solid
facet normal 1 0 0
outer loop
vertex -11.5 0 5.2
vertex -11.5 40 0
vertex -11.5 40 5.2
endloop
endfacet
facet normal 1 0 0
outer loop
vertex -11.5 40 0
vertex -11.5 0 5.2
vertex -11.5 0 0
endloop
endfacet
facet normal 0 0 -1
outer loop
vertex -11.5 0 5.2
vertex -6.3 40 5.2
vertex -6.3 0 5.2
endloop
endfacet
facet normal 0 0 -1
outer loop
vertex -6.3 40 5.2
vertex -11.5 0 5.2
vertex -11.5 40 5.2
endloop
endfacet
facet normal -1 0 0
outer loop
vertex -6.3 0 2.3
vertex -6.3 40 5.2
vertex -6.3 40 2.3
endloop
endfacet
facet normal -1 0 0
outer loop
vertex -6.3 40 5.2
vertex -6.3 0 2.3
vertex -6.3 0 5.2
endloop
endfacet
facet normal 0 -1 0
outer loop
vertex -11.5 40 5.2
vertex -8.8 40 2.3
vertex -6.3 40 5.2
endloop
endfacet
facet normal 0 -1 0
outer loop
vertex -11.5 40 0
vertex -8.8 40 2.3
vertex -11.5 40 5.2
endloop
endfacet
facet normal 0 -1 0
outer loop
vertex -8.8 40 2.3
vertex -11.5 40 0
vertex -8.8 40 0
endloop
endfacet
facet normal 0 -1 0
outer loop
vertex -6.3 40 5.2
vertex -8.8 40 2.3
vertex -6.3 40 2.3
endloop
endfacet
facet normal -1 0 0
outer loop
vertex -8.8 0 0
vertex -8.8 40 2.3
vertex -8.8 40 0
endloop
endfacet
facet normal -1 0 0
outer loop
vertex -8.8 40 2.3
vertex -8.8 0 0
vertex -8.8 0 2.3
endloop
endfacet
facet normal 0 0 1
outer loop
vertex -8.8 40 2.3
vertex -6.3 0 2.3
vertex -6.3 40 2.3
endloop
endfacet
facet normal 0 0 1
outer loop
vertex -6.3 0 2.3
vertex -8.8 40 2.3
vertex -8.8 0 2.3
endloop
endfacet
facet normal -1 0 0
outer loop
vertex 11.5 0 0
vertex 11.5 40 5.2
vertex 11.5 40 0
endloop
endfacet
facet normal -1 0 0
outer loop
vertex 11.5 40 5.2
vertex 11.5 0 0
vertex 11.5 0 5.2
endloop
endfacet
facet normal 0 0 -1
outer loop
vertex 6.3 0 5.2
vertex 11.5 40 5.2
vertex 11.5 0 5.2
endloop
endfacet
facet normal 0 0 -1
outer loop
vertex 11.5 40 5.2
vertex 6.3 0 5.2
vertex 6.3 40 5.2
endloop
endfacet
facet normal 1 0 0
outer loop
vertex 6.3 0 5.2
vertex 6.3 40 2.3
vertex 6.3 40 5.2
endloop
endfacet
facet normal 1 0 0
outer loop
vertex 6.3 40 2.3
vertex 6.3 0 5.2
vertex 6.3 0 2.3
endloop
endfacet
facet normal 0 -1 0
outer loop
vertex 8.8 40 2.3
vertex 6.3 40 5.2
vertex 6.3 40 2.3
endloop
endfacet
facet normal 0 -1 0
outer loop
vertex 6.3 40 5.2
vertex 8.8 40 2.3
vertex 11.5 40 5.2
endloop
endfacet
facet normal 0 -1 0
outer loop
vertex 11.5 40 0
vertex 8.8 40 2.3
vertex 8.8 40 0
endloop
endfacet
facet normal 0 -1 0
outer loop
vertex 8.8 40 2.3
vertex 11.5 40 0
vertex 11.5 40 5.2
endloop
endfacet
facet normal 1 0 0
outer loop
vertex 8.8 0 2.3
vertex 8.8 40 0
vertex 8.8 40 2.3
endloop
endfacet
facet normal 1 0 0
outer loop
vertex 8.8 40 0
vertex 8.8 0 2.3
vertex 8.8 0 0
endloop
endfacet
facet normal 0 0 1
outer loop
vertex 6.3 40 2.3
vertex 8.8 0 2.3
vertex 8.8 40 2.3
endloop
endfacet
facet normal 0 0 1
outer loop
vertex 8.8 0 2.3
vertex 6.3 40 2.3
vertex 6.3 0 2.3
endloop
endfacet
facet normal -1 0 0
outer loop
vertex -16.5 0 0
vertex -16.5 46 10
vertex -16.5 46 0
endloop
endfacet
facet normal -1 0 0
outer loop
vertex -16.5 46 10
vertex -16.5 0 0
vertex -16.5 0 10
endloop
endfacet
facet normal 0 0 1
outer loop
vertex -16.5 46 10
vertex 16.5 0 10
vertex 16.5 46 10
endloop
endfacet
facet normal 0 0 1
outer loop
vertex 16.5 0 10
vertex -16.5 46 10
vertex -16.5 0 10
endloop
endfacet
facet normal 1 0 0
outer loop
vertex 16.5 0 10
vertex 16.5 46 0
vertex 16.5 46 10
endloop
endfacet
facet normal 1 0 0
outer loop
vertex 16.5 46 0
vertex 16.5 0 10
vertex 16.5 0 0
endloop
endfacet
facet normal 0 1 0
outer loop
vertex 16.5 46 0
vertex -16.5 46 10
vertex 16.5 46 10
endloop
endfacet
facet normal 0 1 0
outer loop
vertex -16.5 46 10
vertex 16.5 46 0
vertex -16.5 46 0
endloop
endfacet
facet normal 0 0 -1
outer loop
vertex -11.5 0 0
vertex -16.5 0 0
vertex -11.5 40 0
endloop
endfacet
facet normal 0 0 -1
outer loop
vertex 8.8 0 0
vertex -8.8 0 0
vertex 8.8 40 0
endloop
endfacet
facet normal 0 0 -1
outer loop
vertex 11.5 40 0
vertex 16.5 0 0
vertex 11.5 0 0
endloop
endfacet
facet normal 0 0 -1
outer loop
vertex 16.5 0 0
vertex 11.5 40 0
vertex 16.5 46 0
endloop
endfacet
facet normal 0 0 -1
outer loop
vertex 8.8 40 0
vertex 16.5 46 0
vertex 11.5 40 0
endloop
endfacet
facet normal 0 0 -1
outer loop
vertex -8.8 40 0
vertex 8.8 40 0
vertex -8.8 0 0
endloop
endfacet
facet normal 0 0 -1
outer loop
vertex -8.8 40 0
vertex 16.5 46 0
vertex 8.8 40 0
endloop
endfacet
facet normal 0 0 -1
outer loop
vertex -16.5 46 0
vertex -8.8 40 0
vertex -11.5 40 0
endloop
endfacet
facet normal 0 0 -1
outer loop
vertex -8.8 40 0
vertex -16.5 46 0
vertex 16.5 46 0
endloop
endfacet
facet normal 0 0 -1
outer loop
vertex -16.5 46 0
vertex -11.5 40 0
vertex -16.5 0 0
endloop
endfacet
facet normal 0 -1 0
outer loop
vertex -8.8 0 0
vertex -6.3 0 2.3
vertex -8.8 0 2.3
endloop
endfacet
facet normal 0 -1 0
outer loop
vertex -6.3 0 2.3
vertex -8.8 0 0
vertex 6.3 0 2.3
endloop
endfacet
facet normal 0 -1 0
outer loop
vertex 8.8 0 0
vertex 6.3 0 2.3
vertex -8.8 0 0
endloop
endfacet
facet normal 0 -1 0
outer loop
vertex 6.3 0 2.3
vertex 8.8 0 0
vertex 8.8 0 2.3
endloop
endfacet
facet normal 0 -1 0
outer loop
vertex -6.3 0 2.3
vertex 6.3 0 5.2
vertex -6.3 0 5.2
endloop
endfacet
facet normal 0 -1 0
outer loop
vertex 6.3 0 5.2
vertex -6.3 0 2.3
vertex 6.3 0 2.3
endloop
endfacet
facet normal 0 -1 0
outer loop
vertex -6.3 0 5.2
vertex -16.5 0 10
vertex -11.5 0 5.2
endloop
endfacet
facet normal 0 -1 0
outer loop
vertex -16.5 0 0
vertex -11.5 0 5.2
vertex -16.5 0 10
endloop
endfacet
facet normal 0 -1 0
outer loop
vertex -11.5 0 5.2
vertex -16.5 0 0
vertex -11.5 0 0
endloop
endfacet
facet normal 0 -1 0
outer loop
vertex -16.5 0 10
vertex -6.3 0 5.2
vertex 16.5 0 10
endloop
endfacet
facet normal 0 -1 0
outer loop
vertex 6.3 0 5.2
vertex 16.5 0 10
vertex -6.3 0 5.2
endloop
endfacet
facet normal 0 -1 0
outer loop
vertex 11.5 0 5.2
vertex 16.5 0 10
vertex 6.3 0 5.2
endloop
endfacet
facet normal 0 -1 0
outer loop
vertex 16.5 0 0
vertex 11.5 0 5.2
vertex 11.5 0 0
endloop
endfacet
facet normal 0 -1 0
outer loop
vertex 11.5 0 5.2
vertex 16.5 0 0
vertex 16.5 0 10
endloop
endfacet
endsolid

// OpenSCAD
// This is the basic starter file for the rails on the suction cup mount
// You can add other objects to this to bridge them to the mount

internalWidth = 18;
internalHeight = 25;
internalDepth = 2;

externalWidth = 23;
externalHeight = 36;
externalDepth = 5;

thickness=5;
difference() {
    translate([-externalWidth/2-thickness, 0, 0])
        cube([externalWidth+thickness+thickness, externalHeight+thickness+thickness, externalDepth+thickness]);
    rails(40);	
}

// provides mounting for a single rail
module rail(length) {
	difference() {
		translate([0, -1, -1])
			cube([5.2, length+1, 6.2]);
		translate([2.7, -1, -0.7])
			cube([3, length+2, 3]);
	}
}

// provides mounting for a pair of rails, separated correctly
module rails(length) {
    distanceBetweenRails = 23;
    translate([-distanceBetweenRails/2, 0, 0])
        rail(length);
    translate([distanceBetweenRails/2, 0, 0])
        mirror([1, 0, 0])
			rail(length);
}
